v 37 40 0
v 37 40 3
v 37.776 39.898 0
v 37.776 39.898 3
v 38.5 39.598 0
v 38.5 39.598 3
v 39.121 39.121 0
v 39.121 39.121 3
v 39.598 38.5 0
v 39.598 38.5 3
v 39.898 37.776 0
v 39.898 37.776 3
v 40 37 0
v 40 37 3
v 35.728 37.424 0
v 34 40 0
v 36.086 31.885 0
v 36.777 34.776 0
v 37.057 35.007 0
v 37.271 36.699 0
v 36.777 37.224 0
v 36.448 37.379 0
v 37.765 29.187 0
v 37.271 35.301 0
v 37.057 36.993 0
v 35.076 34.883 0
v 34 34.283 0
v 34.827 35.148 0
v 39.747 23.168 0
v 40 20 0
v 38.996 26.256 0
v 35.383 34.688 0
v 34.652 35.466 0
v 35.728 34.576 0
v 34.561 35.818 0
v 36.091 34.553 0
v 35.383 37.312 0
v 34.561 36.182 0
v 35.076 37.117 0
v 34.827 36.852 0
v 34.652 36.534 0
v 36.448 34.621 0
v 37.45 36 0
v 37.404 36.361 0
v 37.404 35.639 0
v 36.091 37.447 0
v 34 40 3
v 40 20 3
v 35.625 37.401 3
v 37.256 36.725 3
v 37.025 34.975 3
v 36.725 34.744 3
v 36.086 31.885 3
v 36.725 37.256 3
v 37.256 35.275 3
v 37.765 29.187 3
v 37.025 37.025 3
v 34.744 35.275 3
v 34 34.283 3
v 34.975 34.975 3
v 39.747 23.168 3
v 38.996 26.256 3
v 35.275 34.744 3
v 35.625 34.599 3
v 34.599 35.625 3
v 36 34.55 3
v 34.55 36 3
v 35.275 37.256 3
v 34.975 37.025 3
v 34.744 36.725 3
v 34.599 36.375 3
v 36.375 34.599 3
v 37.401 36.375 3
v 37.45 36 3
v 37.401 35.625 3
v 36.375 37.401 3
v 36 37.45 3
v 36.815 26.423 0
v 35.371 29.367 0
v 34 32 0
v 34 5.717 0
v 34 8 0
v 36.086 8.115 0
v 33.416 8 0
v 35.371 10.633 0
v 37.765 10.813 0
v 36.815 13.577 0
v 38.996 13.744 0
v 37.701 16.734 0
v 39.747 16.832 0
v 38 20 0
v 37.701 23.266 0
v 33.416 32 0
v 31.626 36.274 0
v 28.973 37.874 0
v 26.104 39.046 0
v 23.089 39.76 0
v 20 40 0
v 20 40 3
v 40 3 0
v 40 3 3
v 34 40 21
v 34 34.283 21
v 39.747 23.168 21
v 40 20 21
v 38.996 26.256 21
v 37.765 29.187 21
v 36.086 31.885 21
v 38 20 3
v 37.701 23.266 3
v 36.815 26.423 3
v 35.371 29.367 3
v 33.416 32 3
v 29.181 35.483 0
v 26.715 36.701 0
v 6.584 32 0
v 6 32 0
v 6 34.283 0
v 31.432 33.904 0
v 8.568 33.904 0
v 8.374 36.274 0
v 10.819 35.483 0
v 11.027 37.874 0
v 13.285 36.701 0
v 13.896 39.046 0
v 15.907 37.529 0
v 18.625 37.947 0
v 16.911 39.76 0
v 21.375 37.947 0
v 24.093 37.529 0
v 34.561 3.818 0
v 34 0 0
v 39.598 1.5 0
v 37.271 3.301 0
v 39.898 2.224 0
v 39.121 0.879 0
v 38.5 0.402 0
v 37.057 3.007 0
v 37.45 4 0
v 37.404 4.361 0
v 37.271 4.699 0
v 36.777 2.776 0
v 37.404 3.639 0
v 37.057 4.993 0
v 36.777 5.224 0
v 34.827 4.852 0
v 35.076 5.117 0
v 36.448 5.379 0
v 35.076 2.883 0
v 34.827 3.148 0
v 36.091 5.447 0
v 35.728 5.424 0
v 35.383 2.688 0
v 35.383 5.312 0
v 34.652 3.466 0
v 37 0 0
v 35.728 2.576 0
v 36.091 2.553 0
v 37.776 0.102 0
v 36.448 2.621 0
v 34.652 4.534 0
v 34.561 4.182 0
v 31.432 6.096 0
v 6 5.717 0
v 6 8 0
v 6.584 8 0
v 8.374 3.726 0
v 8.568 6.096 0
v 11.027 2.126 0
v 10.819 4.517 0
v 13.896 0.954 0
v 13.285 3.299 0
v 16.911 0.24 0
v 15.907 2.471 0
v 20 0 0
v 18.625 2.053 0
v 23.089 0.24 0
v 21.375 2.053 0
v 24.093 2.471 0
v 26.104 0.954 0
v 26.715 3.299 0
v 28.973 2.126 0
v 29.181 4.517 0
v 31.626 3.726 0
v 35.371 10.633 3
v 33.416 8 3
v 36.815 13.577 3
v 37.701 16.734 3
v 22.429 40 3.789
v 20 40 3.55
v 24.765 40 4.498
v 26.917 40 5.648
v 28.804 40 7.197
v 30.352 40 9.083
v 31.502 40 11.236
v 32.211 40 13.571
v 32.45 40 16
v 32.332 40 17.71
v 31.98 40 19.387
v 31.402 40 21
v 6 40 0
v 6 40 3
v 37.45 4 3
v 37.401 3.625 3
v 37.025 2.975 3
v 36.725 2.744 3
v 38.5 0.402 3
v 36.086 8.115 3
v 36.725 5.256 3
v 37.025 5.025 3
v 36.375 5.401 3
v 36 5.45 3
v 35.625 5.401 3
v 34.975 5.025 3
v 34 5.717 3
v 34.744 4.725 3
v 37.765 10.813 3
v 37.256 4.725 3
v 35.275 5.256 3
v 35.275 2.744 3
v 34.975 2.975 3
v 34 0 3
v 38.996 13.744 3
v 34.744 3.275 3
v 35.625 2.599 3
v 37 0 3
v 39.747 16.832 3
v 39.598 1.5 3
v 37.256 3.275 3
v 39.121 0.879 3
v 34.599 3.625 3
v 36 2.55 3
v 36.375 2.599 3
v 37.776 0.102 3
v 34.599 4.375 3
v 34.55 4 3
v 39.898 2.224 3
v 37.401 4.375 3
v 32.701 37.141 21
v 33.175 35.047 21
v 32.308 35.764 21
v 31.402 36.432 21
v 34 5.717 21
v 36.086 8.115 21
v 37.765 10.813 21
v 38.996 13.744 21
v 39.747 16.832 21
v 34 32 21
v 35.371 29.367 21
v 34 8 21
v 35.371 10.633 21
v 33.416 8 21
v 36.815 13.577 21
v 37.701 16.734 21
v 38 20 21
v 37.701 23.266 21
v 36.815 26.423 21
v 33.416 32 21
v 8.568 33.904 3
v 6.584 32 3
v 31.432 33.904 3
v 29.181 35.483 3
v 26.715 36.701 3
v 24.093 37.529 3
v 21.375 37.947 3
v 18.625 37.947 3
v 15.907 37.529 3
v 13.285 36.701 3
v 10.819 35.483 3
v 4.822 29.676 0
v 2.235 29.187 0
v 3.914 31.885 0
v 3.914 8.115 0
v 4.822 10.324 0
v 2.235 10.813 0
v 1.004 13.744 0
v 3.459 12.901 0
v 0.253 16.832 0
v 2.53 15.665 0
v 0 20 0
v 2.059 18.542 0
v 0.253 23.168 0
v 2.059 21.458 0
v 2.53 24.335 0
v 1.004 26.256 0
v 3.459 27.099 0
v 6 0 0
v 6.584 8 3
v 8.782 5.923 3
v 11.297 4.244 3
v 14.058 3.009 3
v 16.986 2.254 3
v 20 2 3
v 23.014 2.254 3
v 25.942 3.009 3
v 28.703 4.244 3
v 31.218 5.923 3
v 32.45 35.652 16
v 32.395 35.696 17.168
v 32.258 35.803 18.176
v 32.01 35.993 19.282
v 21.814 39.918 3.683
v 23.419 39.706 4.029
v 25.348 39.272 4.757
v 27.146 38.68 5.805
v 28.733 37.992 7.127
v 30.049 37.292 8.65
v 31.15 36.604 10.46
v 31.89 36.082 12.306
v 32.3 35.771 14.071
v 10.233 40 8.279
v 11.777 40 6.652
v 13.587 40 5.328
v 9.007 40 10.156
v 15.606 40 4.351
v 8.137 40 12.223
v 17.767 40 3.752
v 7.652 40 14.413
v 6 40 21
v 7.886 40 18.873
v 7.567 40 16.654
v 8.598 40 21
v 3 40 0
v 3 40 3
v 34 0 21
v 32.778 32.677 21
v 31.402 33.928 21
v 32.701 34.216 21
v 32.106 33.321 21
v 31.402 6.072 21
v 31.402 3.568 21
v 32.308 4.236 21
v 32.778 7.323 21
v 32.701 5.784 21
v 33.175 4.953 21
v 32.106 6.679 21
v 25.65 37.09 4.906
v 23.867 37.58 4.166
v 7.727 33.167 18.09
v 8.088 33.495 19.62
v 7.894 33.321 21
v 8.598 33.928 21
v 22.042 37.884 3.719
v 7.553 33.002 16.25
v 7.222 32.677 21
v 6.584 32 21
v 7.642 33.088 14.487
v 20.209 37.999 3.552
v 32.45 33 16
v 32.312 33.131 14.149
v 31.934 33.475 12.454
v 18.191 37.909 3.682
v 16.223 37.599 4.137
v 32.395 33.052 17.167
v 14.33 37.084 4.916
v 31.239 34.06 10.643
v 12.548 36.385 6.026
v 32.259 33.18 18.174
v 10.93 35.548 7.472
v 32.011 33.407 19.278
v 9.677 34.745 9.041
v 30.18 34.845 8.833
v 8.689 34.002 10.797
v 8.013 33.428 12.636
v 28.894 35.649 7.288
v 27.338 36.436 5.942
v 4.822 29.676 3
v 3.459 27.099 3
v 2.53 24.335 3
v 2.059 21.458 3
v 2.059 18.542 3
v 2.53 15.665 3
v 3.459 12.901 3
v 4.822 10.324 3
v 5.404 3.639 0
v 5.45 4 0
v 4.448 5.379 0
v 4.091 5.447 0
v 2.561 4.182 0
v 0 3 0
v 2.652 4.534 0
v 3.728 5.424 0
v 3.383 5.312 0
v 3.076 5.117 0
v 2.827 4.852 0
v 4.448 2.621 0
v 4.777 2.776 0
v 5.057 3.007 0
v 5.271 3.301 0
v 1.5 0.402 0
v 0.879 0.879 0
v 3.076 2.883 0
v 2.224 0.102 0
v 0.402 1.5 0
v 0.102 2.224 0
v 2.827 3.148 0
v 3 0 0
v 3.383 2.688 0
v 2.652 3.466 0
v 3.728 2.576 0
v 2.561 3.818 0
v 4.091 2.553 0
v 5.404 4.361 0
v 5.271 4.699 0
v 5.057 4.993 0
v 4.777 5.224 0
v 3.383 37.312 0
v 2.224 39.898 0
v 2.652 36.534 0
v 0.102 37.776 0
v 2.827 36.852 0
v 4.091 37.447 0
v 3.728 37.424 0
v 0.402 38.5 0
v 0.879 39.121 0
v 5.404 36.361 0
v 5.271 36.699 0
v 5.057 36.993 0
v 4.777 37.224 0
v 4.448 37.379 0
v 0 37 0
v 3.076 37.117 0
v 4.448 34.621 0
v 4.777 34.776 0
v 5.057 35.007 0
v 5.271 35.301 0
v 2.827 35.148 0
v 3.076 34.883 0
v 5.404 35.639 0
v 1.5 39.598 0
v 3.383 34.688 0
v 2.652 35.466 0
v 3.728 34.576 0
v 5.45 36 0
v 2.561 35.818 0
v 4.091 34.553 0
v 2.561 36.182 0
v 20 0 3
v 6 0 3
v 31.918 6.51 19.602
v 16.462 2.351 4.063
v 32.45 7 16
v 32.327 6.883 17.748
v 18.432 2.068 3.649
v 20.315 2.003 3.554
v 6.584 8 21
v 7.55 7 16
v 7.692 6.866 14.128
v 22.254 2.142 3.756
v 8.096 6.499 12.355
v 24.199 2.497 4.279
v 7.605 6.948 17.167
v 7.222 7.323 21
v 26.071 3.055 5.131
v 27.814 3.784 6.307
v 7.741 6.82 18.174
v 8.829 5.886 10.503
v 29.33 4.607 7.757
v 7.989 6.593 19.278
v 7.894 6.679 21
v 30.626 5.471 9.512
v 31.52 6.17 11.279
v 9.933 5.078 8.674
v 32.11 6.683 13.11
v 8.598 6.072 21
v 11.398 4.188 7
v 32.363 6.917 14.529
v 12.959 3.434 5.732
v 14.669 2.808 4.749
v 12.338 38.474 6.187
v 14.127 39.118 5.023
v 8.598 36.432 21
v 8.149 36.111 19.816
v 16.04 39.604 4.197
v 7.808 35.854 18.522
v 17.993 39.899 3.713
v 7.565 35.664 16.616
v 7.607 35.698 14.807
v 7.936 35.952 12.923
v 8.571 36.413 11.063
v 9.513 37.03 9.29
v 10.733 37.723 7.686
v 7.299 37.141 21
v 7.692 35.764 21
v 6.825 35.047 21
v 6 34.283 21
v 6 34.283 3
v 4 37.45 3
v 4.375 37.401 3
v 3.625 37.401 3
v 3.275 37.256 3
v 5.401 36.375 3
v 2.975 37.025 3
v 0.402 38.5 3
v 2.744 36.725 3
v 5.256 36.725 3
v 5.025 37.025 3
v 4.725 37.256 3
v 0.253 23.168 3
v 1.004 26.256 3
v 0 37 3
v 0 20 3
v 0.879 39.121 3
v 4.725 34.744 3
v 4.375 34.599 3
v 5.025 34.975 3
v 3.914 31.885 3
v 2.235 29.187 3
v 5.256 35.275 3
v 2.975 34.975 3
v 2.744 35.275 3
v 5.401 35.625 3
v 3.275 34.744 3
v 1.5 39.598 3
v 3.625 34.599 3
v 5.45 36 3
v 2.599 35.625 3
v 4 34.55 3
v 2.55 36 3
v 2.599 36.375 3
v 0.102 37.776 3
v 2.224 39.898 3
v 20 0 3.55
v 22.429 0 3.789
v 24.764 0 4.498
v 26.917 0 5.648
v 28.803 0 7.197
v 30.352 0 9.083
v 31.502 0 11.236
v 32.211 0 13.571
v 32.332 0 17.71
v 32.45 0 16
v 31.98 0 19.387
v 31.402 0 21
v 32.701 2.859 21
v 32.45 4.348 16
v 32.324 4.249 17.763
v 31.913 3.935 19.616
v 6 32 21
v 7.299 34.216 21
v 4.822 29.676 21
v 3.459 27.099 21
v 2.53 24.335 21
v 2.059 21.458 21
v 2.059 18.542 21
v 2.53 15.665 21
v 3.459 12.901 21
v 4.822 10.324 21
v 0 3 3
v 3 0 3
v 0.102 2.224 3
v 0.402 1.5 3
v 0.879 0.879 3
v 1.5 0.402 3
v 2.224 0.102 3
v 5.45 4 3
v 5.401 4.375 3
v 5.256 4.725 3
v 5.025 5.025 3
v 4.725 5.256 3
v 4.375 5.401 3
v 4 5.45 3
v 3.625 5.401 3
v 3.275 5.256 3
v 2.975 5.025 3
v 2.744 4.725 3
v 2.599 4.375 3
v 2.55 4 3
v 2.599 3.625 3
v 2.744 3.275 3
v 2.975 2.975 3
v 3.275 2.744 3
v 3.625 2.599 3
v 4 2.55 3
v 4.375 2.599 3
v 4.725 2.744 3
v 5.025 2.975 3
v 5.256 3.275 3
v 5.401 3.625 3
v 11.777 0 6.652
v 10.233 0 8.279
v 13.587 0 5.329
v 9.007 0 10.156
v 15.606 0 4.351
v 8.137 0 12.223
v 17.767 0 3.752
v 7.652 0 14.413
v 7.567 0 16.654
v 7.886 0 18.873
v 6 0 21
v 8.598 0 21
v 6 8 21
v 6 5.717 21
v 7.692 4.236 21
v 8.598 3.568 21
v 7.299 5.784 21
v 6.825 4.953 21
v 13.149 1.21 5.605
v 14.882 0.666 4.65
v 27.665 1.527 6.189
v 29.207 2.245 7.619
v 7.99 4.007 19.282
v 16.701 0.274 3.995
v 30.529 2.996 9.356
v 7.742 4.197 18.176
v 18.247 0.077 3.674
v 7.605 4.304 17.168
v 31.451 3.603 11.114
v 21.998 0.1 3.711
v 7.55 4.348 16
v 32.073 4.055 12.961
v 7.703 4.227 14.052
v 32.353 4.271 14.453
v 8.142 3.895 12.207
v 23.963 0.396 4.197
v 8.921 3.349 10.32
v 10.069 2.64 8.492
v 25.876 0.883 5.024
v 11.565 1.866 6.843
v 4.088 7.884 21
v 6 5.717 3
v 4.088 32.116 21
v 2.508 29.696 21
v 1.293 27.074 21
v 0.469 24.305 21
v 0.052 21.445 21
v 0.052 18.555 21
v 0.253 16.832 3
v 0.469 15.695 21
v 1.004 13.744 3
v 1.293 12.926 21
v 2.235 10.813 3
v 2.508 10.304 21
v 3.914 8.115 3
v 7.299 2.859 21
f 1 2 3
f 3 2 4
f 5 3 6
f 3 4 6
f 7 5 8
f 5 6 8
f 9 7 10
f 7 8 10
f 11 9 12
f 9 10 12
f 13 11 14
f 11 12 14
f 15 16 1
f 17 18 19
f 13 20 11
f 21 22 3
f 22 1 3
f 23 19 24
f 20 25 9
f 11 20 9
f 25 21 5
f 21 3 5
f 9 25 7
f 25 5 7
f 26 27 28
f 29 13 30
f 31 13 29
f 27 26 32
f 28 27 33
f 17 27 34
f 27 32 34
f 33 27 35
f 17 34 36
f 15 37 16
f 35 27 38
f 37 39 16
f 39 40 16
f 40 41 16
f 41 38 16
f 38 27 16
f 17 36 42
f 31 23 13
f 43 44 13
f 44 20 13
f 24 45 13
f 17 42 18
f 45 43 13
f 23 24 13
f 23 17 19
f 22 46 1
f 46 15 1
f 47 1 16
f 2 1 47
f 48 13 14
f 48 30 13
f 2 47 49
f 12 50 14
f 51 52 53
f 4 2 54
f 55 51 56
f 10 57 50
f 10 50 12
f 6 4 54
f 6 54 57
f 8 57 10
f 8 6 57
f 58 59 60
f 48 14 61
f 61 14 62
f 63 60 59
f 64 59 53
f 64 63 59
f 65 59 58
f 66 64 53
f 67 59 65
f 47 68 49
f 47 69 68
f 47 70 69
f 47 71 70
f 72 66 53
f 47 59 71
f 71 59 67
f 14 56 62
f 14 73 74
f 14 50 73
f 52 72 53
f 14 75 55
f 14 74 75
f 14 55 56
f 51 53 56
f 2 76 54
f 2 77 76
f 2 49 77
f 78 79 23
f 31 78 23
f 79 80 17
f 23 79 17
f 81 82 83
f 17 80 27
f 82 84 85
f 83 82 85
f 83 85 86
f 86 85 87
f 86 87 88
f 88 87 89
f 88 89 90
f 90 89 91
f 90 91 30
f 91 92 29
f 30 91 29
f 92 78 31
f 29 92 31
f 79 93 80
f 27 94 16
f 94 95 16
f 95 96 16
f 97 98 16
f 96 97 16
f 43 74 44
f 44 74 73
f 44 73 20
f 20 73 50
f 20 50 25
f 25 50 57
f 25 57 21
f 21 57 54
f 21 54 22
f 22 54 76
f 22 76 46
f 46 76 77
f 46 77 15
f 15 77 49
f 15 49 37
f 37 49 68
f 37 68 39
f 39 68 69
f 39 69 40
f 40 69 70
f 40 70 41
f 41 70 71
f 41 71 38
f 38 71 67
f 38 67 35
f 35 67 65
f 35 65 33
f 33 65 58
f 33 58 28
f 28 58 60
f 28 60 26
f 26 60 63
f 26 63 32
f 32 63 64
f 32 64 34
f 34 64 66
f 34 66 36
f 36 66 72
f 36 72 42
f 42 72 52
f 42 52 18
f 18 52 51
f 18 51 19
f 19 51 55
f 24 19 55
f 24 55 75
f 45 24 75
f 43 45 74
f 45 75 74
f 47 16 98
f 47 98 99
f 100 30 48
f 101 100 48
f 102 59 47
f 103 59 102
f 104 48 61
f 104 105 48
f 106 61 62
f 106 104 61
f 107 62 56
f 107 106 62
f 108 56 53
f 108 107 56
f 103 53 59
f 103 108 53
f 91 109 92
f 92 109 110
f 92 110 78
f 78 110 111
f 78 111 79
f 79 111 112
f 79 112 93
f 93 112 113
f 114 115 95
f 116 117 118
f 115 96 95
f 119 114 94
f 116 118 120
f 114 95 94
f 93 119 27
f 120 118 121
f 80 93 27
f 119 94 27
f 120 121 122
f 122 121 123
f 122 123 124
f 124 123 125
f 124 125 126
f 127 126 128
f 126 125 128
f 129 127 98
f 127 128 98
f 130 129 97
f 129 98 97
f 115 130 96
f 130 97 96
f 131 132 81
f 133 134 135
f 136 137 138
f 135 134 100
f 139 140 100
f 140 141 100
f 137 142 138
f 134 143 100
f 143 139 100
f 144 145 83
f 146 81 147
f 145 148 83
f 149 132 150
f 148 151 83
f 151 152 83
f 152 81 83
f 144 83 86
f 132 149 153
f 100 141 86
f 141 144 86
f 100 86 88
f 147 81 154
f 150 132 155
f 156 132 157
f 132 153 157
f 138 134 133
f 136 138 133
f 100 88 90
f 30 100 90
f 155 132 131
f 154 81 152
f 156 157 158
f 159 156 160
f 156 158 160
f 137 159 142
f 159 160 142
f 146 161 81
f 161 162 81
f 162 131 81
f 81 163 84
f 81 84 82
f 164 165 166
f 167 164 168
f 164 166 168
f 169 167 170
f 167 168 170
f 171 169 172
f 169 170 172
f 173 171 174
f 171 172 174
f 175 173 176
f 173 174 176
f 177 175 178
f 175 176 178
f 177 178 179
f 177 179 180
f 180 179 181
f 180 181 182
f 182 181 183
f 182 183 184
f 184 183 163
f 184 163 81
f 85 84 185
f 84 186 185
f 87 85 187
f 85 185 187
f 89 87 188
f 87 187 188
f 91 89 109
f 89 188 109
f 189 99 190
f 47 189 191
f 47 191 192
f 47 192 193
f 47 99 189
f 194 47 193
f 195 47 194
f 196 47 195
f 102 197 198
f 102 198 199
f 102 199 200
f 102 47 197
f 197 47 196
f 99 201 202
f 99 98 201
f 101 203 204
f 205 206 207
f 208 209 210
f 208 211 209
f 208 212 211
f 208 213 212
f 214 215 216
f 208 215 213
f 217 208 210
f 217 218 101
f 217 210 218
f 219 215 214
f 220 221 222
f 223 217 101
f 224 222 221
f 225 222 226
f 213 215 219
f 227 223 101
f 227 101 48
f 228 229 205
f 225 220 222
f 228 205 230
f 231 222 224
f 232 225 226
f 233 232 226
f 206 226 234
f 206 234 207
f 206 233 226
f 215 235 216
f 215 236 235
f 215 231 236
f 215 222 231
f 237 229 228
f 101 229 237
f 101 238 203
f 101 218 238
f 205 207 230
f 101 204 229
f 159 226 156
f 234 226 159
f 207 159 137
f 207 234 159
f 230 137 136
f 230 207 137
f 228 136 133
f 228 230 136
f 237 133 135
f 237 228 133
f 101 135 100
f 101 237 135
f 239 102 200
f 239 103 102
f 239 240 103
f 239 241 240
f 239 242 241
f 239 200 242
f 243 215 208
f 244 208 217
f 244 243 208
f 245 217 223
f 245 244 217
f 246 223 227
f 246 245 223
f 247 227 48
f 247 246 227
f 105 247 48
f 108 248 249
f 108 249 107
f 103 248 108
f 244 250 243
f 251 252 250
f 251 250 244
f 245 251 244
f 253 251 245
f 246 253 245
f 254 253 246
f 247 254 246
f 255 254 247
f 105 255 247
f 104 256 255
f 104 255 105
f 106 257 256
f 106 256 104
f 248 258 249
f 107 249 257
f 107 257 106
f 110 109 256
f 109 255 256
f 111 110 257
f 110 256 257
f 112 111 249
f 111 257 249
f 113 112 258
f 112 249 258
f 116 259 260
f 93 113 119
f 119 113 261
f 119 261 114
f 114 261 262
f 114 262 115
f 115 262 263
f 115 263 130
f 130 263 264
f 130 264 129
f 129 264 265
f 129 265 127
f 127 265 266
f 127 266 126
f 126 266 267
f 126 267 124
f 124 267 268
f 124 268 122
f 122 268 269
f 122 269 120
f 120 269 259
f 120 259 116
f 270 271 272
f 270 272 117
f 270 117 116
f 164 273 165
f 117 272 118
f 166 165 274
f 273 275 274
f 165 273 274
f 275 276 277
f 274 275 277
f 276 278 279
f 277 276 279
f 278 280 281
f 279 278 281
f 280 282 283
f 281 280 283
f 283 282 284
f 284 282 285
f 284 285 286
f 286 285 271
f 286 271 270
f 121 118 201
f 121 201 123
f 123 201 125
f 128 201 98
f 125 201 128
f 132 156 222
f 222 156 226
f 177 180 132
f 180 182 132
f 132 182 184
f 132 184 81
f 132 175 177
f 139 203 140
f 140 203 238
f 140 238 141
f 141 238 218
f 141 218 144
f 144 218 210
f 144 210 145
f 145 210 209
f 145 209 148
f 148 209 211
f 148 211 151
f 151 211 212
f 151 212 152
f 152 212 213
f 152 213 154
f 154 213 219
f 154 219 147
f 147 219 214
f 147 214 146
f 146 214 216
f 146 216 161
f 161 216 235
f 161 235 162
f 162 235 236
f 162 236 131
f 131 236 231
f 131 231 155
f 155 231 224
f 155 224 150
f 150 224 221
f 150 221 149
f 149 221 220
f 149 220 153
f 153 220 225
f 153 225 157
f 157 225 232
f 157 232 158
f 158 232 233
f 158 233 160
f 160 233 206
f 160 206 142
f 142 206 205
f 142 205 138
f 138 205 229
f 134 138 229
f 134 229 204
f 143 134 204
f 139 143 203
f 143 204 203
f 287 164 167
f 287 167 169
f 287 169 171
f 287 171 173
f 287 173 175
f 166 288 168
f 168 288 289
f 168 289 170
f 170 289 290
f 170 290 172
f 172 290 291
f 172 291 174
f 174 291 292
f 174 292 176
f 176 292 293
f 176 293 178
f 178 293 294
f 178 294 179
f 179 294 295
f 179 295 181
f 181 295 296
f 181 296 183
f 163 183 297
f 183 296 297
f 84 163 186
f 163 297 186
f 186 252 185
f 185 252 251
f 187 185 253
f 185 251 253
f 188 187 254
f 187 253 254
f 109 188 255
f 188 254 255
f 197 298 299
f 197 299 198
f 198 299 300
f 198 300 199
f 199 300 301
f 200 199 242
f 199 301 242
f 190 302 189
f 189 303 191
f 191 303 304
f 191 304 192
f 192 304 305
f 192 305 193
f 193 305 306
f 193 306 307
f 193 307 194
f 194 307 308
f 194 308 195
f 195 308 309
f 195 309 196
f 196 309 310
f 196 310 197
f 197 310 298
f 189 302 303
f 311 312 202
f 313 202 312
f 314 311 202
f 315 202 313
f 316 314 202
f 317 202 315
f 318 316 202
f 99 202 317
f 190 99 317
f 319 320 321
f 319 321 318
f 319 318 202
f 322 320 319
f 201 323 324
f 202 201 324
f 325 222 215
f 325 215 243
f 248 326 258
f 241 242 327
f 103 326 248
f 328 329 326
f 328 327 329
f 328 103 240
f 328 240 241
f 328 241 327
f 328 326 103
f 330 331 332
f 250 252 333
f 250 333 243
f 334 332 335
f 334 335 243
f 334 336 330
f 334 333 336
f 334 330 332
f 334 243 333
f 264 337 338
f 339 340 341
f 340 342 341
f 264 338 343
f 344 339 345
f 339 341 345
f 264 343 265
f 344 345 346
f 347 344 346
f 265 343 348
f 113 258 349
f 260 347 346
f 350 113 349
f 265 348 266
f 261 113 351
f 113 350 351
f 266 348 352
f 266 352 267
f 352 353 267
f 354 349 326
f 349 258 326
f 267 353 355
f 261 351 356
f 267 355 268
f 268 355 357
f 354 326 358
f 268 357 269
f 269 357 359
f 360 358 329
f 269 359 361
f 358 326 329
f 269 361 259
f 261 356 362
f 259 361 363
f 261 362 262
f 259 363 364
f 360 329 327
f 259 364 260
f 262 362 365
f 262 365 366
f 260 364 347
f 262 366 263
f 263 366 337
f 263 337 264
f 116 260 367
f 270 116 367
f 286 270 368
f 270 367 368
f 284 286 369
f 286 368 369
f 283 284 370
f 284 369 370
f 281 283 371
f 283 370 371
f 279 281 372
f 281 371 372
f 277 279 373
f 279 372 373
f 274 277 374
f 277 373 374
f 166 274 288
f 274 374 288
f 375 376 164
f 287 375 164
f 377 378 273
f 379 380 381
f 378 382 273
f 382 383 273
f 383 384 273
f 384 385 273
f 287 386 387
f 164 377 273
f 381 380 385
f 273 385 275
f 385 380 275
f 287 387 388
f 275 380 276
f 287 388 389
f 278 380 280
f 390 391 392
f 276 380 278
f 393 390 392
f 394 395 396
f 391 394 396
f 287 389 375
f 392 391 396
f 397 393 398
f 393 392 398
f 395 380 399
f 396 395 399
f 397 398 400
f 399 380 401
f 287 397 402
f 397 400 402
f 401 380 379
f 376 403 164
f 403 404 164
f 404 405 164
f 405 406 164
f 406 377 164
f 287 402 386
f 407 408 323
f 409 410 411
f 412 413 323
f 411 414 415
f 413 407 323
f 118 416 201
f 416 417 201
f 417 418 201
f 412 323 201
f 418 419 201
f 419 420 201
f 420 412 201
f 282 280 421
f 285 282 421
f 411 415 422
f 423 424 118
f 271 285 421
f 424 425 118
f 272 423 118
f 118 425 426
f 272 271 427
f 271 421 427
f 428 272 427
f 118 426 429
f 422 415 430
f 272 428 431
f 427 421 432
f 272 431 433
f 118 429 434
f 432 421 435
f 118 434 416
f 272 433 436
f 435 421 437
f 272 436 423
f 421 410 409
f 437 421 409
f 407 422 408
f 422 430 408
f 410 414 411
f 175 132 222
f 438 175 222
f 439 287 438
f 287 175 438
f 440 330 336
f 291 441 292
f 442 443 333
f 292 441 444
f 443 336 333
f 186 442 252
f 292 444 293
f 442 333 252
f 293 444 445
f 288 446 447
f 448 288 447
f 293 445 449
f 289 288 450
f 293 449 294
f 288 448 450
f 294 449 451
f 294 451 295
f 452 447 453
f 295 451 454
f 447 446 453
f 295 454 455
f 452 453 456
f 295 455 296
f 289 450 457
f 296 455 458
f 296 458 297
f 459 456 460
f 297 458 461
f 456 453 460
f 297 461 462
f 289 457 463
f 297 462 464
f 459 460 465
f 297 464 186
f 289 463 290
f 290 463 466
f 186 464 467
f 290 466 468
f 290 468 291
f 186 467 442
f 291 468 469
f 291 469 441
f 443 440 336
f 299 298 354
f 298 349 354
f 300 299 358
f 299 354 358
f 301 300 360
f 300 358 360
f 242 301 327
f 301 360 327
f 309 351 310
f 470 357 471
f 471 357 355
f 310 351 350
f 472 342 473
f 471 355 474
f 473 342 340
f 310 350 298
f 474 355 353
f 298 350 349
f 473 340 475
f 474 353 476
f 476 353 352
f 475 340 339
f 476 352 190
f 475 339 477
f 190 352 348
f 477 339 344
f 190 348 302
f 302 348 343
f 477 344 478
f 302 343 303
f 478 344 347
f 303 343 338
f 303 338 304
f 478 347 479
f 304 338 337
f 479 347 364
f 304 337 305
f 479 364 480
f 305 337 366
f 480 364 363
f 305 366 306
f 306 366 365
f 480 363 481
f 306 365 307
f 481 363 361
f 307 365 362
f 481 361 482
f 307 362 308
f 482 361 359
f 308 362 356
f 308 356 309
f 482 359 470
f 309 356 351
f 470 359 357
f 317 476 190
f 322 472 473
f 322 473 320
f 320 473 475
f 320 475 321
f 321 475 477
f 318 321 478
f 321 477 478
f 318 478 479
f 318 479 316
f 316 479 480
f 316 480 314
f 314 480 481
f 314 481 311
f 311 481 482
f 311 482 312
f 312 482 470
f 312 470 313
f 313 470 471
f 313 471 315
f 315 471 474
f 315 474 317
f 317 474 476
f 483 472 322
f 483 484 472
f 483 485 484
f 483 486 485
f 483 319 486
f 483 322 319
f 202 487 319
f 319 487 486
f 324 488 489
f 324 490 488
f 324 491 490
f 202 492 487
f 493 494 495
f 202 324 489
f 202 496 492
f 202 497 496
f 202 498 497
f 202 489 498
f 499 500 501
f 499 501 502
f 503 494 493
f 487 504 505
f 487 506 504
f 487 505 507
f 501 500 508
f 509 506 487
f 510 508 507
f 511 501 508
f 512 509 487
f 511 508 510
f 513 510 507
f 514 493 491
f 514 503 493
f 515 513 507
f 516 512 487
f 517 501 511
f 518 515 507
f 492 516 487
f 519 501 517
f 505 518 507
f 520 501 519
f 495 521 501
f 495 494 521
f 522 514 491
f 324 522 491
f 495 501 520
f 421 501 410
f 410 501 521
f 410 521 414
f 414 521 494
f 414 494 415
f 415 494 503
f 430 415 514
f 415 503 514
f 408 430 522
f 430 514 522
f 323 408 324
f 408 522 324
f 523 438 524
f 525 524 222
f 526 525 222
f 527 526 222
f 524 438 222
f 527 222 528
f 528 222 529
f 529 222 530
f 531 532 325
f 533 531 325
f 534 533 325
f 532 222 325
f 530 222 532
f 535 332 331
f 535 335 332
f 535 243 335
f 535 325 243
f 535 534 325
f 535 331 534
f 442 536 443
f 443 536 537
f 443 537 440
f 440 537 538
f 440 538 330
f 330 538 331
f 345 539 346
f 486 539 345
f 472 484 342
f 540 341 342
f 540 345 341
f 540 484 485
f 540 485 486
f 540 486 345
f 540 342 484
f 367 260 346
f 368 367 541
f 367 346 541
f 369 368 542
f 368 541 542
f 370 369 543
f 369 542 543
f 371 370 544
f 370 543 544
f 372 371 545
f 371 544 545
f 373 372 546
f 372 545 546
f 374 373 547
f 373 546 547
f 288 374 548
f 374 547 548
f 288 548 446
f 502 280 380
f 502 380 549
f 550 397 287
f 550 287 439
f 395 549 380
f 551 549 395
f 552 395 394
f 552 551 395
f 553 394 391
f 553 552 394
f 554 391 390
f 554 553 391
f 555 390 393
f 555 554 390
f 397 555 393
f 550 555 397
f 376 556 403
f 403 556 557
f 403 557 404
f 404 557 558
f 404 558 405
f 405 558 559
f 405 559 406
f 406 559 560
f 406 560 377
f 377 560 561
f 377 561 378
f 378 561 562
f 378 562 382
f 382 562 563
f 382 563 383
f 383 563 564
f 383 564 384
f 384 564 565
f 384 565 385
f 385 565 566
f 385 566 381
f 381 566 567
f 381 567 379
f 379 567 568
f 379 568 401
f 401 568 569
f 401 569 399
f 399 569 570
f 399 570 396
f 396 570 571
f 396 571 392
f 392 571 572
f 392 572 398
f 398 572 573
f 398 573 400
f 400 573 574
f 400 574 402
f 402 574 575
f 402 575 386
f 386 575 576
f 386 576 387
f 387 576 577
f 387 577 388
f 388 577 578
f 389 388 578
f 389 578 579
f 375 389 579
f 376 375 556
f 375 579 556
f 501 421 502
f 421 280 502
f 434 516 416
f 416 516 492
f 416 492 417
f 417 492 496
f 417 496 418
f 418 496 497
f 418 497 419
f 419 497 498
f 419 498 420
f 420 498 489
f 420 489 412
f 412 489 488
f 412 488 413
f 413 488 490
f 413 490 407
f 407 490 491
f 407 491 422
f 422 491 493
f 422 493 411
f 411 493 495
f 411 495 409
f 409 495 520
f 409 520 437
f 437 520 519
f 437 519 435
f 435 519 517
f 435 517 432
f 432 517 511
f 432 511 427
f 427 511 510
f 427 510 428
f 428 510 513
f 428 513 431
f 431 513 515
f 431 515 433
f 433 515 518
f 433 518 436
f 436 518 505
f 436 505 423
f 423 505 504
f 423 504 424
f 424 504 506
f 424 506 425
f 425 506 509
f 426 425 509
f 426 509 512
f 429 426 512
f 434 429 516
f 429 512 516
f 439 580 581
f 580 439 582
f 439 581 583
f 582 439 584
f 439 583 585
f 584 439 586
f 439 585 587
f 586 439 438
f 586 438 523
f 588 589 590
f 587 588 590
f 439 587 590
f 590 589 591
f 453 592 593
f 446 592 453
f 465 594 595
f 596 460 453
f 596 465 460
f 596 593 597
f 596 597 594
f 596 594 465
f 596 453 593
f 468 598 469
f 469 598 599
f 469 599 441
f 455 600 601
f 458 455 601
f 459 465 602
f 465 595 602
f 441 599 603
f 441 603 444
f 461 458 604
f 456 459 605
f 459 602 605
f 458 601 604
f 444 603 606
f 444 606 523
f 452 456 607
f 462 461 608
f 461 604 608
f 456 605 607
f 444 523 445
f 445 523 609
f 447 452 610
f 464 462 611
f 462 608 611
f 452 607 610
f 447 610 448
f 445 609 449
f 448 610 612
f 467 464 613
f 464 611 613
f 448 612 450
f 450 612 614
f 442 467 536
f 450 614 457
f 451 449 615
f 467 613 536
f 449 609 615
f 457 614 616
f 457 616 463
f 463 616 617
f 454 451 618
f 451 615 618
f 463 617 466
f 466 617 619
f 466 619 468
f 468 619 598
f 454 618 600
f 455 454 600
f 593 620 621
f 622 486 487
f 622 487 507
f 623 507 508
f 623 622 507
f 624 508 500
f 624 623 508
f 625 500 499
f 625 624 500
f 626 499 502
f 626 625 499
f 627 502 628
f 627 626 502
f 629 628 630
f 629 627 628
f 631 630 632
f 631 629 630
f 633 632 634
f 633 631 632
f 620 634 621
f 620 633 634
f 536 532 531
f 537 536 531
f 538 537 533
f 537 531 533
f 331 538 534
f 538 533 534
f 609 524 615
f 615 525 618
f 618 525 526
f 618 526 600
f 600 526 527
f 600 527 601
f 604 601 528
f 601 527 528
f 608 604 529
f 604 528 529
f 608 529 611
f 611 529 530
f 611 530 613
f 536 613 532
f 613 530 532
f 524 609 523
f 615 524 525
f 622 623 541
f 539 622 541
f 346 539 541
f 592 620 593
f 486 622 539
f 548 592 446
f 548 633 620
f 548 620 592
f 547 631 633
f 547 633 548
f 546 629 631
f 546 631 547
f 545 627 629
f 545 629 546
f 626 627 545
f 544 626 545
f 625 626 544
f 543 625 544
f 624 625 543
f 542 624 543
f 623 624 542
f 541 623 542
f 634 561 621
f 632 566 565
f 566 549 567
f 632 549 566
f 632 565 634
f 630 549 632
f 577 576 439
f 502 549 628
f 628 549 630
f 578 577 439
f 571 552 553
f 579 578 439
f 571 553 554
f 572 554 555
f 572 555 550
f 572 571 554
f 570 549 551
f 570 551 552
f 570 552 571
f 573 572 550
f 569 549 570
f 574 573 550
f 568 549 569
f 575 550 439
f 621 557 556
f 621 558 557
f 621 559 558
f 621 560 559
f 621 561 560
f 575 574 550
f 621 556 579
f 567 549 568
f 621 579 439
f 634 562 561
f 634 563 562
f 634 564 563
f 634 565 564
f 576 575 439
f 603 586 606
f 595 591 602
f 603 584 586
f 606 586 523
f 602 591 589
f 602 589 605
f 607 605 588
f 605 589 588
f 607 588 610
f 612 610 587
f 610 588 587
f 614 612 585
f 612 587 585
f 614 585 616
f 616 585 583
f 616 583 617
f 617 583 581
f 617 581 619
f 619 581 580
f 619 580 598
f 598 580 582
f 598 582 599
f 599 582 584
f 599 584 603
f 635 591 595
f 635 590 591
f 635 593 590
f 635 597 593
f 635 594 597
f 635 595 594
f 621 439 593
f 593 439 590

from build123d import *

# Parameters (mm, degrees)
CYLINDER002_R          = 12.45
CYLINDER002_DEPTH      = 55
CYLINDER002_ROLL_ANGLE = 90
CYLINDER005_R          = 18
CYLINDER005_DEPTH      = 39
BOX001_W               = 28
BOX001_H               = 8
BOX001_DEPTH           = 21
BOX001001_W            = 28
BOX001001_H            = 8
BOX001001_DEPTH        = 21
CYLINDER001_R          = 18
CYLINDER001_DEPTH      = 10
CYLINDER_R             = 1.45
CYLINDER_DEPTH         = 10
ARRAY_X_COUNT          = 2
ARRAY_X_PITCH          = 32
ARRAY_Y_COUNT          = 2
ARRAY_Y_PITCH          = 32
BOX_W                  = 40
BOX_H                  = 40
BOX_DEPTH              = 3
FILLET_R               = 3
CYLINDER004_R          = 18
CYLINDER004_DEPTH      = 21
CYLINDER003_R          = 20
CYLINDER003_DEPTH      = 21


with BuildPart() as cylinder002:
    # Cylinder002 → Cylinder002 (new body)
    with BuildSketch(Plane.XY):
        Circle(CYLINDER002_R)
    extrude(amount=CYLINDER002_DEPTH)


with BuildPart() as cylinder002_1:
    # Cylinder002 roll: moved
    add(cylinder002.part.rotate(Axis((0, 0, 0), (1, 0, 0)), CYLINDER002_ROLL_ANGLE))


with BuildPart() as cylinder002_2:
    # Cylinder002 placement: moved
    add(cylinder002_1.part.moved(Location((20, 45.000004, 16))))


with BuildPart() as cylinder005:
    # Cylinder005 → Cylinder005 (new body)
    with BuildSketch(Plane(origin=(20, 20, -6), x_dir=(1, 0, 0), z_dir=(0, 0, 1))):
        Circle(CYLINDER005_R)
    extrude(amount=CYLINDER005_DEPTH)


with BuildPart() as box001:
    # Box001 → Box001 (new body)
    with BuildSketch(Plane(origin=(6, 0, 0), x_dir=(1, 0, 0), z_dir=(0, 0, 1))):
        with Locations((14, 4)):
            Rectangle(BOX001_W, BOX001_H)
    extrude(amount=BOX001_DEPTH)


with BuildPart() as cut005:
    # Box001001 → Box001001 (new body)
    with BuildSketch(Plane(origin=(6, 32, 0), x_dir=(1, 0, 0), z_dir=(0, 0, 1))):
        with Locations((14, 4)):
            Rectangle(BOX001001_W, BOX001001_H)
    extrude(amount=BOX001001_DEPTH)

    # Fusion001: union Box001
    add(box001.part)

    # Cut004: cut Cylinder005
    add(cylinder005.part, mode=Mode.SUBTRACT)

    # Cut005: cut Cylinder002
    add(cylinder002_2.part, mode=Mode.SUBTRACT)


with BuildPart() as cylinder001:
    # Cylinder001 → Cylinder001 (new body)
    with BuildSketch(Plane(origin=(20, 20, 0), x_dir=(1, 0, 0), z_dir=(0, 0, 1))):
        Circle(CYLINDER001_R)
    extrude(amount=CYLINDER001_DEPTH)


with BuildPart() as array:
    # Cylinder → Cylinder (new body)
    with BuildSketch(Plane.XY):
        Circle(CYLINDER_R)
    extrude(amount=CYLINDER_DEPTH)

    # Array X: Array ×2


with BuildPart() as array_1:
    add(array.part)
    with Locations(*[(i * ARRAY_X_PITCH, 0, 0) for i in range(1, ARRAY_X_COUNT)]):
        add(array.part)

    # Array Y: Array ×2


with BuildPart() as array_2:
    add(array_1.part)
    with Locations(*[(0, i * ARRAY_Y_PITCH, 0) for i in range(1, ARRAY_Y_COUNT)]):
        add(array_1.part)


with BuildPart() as array_3:
    # Array placement: moved
    add(array_2.part.moved(Location((4, 4, 0))))


with BuildPart() as fillet_body:
    # Box → Box (new body)
    with BuildSketch(Plane.XY):
        with Locations((20, 20)):
            Rectangle(BOX_W, BOX_H)
    extrude(amount=BOX_DEPTH)

    # Cut: cut Array
    add(array_3.part, mode=Mode.SUBTRACT)

    # Cut001: cut Cylinder001
    add(cylinder001.part, mode=Mode.SUBTRACT)

    # Fillet
    fillet_edges = [fillet_body.edges().sort_by_distance(p)[0] for p in [
        (0, 0, 1.5),
        (0, 40, 1.5),
        (40, 0, 1.5),
        (40, 40, 1.5),
    ]]
    fillet(fillet_edges, radius=FILLET_R)


with BuildPart() as cylinder004:
    # Cylinder004 → Cylinder004 (new body)
    with BuildSketch(Plane(origin=(20, 20, 0), x_dir=(1, 0, 0), z_dir=(0, 0, 1))):
        Circle(CYLINDER004_R)
    extrude(amount=CYLINDER004_DEPTH)


with BuildPart() as fusion002:
    # Cylinder003 → Cylinder003 (new body)
    with BuildSketch(Plane(origin=(20, 20, 0), x_dir=(1, 0, 0), z_dir=(0, 0, 1))):
        Circle(CYLINDER003_R)
    extrude(amount=CYLINDER003_DEPTH)

    # Cut002: cut Cylinder004
    add(cylinder004.part, mode=Mode.SUBTRACT)

    # Fusion: union Fillet body
    add(fillet_body.part)

    # Cut003: cut Cylinder002
    add(cylinder002_2.part, mode=Mode.SUBTRACT)

    # Fusion002: union Cut005
    add(cut005.part)


solid = fusion002.part
